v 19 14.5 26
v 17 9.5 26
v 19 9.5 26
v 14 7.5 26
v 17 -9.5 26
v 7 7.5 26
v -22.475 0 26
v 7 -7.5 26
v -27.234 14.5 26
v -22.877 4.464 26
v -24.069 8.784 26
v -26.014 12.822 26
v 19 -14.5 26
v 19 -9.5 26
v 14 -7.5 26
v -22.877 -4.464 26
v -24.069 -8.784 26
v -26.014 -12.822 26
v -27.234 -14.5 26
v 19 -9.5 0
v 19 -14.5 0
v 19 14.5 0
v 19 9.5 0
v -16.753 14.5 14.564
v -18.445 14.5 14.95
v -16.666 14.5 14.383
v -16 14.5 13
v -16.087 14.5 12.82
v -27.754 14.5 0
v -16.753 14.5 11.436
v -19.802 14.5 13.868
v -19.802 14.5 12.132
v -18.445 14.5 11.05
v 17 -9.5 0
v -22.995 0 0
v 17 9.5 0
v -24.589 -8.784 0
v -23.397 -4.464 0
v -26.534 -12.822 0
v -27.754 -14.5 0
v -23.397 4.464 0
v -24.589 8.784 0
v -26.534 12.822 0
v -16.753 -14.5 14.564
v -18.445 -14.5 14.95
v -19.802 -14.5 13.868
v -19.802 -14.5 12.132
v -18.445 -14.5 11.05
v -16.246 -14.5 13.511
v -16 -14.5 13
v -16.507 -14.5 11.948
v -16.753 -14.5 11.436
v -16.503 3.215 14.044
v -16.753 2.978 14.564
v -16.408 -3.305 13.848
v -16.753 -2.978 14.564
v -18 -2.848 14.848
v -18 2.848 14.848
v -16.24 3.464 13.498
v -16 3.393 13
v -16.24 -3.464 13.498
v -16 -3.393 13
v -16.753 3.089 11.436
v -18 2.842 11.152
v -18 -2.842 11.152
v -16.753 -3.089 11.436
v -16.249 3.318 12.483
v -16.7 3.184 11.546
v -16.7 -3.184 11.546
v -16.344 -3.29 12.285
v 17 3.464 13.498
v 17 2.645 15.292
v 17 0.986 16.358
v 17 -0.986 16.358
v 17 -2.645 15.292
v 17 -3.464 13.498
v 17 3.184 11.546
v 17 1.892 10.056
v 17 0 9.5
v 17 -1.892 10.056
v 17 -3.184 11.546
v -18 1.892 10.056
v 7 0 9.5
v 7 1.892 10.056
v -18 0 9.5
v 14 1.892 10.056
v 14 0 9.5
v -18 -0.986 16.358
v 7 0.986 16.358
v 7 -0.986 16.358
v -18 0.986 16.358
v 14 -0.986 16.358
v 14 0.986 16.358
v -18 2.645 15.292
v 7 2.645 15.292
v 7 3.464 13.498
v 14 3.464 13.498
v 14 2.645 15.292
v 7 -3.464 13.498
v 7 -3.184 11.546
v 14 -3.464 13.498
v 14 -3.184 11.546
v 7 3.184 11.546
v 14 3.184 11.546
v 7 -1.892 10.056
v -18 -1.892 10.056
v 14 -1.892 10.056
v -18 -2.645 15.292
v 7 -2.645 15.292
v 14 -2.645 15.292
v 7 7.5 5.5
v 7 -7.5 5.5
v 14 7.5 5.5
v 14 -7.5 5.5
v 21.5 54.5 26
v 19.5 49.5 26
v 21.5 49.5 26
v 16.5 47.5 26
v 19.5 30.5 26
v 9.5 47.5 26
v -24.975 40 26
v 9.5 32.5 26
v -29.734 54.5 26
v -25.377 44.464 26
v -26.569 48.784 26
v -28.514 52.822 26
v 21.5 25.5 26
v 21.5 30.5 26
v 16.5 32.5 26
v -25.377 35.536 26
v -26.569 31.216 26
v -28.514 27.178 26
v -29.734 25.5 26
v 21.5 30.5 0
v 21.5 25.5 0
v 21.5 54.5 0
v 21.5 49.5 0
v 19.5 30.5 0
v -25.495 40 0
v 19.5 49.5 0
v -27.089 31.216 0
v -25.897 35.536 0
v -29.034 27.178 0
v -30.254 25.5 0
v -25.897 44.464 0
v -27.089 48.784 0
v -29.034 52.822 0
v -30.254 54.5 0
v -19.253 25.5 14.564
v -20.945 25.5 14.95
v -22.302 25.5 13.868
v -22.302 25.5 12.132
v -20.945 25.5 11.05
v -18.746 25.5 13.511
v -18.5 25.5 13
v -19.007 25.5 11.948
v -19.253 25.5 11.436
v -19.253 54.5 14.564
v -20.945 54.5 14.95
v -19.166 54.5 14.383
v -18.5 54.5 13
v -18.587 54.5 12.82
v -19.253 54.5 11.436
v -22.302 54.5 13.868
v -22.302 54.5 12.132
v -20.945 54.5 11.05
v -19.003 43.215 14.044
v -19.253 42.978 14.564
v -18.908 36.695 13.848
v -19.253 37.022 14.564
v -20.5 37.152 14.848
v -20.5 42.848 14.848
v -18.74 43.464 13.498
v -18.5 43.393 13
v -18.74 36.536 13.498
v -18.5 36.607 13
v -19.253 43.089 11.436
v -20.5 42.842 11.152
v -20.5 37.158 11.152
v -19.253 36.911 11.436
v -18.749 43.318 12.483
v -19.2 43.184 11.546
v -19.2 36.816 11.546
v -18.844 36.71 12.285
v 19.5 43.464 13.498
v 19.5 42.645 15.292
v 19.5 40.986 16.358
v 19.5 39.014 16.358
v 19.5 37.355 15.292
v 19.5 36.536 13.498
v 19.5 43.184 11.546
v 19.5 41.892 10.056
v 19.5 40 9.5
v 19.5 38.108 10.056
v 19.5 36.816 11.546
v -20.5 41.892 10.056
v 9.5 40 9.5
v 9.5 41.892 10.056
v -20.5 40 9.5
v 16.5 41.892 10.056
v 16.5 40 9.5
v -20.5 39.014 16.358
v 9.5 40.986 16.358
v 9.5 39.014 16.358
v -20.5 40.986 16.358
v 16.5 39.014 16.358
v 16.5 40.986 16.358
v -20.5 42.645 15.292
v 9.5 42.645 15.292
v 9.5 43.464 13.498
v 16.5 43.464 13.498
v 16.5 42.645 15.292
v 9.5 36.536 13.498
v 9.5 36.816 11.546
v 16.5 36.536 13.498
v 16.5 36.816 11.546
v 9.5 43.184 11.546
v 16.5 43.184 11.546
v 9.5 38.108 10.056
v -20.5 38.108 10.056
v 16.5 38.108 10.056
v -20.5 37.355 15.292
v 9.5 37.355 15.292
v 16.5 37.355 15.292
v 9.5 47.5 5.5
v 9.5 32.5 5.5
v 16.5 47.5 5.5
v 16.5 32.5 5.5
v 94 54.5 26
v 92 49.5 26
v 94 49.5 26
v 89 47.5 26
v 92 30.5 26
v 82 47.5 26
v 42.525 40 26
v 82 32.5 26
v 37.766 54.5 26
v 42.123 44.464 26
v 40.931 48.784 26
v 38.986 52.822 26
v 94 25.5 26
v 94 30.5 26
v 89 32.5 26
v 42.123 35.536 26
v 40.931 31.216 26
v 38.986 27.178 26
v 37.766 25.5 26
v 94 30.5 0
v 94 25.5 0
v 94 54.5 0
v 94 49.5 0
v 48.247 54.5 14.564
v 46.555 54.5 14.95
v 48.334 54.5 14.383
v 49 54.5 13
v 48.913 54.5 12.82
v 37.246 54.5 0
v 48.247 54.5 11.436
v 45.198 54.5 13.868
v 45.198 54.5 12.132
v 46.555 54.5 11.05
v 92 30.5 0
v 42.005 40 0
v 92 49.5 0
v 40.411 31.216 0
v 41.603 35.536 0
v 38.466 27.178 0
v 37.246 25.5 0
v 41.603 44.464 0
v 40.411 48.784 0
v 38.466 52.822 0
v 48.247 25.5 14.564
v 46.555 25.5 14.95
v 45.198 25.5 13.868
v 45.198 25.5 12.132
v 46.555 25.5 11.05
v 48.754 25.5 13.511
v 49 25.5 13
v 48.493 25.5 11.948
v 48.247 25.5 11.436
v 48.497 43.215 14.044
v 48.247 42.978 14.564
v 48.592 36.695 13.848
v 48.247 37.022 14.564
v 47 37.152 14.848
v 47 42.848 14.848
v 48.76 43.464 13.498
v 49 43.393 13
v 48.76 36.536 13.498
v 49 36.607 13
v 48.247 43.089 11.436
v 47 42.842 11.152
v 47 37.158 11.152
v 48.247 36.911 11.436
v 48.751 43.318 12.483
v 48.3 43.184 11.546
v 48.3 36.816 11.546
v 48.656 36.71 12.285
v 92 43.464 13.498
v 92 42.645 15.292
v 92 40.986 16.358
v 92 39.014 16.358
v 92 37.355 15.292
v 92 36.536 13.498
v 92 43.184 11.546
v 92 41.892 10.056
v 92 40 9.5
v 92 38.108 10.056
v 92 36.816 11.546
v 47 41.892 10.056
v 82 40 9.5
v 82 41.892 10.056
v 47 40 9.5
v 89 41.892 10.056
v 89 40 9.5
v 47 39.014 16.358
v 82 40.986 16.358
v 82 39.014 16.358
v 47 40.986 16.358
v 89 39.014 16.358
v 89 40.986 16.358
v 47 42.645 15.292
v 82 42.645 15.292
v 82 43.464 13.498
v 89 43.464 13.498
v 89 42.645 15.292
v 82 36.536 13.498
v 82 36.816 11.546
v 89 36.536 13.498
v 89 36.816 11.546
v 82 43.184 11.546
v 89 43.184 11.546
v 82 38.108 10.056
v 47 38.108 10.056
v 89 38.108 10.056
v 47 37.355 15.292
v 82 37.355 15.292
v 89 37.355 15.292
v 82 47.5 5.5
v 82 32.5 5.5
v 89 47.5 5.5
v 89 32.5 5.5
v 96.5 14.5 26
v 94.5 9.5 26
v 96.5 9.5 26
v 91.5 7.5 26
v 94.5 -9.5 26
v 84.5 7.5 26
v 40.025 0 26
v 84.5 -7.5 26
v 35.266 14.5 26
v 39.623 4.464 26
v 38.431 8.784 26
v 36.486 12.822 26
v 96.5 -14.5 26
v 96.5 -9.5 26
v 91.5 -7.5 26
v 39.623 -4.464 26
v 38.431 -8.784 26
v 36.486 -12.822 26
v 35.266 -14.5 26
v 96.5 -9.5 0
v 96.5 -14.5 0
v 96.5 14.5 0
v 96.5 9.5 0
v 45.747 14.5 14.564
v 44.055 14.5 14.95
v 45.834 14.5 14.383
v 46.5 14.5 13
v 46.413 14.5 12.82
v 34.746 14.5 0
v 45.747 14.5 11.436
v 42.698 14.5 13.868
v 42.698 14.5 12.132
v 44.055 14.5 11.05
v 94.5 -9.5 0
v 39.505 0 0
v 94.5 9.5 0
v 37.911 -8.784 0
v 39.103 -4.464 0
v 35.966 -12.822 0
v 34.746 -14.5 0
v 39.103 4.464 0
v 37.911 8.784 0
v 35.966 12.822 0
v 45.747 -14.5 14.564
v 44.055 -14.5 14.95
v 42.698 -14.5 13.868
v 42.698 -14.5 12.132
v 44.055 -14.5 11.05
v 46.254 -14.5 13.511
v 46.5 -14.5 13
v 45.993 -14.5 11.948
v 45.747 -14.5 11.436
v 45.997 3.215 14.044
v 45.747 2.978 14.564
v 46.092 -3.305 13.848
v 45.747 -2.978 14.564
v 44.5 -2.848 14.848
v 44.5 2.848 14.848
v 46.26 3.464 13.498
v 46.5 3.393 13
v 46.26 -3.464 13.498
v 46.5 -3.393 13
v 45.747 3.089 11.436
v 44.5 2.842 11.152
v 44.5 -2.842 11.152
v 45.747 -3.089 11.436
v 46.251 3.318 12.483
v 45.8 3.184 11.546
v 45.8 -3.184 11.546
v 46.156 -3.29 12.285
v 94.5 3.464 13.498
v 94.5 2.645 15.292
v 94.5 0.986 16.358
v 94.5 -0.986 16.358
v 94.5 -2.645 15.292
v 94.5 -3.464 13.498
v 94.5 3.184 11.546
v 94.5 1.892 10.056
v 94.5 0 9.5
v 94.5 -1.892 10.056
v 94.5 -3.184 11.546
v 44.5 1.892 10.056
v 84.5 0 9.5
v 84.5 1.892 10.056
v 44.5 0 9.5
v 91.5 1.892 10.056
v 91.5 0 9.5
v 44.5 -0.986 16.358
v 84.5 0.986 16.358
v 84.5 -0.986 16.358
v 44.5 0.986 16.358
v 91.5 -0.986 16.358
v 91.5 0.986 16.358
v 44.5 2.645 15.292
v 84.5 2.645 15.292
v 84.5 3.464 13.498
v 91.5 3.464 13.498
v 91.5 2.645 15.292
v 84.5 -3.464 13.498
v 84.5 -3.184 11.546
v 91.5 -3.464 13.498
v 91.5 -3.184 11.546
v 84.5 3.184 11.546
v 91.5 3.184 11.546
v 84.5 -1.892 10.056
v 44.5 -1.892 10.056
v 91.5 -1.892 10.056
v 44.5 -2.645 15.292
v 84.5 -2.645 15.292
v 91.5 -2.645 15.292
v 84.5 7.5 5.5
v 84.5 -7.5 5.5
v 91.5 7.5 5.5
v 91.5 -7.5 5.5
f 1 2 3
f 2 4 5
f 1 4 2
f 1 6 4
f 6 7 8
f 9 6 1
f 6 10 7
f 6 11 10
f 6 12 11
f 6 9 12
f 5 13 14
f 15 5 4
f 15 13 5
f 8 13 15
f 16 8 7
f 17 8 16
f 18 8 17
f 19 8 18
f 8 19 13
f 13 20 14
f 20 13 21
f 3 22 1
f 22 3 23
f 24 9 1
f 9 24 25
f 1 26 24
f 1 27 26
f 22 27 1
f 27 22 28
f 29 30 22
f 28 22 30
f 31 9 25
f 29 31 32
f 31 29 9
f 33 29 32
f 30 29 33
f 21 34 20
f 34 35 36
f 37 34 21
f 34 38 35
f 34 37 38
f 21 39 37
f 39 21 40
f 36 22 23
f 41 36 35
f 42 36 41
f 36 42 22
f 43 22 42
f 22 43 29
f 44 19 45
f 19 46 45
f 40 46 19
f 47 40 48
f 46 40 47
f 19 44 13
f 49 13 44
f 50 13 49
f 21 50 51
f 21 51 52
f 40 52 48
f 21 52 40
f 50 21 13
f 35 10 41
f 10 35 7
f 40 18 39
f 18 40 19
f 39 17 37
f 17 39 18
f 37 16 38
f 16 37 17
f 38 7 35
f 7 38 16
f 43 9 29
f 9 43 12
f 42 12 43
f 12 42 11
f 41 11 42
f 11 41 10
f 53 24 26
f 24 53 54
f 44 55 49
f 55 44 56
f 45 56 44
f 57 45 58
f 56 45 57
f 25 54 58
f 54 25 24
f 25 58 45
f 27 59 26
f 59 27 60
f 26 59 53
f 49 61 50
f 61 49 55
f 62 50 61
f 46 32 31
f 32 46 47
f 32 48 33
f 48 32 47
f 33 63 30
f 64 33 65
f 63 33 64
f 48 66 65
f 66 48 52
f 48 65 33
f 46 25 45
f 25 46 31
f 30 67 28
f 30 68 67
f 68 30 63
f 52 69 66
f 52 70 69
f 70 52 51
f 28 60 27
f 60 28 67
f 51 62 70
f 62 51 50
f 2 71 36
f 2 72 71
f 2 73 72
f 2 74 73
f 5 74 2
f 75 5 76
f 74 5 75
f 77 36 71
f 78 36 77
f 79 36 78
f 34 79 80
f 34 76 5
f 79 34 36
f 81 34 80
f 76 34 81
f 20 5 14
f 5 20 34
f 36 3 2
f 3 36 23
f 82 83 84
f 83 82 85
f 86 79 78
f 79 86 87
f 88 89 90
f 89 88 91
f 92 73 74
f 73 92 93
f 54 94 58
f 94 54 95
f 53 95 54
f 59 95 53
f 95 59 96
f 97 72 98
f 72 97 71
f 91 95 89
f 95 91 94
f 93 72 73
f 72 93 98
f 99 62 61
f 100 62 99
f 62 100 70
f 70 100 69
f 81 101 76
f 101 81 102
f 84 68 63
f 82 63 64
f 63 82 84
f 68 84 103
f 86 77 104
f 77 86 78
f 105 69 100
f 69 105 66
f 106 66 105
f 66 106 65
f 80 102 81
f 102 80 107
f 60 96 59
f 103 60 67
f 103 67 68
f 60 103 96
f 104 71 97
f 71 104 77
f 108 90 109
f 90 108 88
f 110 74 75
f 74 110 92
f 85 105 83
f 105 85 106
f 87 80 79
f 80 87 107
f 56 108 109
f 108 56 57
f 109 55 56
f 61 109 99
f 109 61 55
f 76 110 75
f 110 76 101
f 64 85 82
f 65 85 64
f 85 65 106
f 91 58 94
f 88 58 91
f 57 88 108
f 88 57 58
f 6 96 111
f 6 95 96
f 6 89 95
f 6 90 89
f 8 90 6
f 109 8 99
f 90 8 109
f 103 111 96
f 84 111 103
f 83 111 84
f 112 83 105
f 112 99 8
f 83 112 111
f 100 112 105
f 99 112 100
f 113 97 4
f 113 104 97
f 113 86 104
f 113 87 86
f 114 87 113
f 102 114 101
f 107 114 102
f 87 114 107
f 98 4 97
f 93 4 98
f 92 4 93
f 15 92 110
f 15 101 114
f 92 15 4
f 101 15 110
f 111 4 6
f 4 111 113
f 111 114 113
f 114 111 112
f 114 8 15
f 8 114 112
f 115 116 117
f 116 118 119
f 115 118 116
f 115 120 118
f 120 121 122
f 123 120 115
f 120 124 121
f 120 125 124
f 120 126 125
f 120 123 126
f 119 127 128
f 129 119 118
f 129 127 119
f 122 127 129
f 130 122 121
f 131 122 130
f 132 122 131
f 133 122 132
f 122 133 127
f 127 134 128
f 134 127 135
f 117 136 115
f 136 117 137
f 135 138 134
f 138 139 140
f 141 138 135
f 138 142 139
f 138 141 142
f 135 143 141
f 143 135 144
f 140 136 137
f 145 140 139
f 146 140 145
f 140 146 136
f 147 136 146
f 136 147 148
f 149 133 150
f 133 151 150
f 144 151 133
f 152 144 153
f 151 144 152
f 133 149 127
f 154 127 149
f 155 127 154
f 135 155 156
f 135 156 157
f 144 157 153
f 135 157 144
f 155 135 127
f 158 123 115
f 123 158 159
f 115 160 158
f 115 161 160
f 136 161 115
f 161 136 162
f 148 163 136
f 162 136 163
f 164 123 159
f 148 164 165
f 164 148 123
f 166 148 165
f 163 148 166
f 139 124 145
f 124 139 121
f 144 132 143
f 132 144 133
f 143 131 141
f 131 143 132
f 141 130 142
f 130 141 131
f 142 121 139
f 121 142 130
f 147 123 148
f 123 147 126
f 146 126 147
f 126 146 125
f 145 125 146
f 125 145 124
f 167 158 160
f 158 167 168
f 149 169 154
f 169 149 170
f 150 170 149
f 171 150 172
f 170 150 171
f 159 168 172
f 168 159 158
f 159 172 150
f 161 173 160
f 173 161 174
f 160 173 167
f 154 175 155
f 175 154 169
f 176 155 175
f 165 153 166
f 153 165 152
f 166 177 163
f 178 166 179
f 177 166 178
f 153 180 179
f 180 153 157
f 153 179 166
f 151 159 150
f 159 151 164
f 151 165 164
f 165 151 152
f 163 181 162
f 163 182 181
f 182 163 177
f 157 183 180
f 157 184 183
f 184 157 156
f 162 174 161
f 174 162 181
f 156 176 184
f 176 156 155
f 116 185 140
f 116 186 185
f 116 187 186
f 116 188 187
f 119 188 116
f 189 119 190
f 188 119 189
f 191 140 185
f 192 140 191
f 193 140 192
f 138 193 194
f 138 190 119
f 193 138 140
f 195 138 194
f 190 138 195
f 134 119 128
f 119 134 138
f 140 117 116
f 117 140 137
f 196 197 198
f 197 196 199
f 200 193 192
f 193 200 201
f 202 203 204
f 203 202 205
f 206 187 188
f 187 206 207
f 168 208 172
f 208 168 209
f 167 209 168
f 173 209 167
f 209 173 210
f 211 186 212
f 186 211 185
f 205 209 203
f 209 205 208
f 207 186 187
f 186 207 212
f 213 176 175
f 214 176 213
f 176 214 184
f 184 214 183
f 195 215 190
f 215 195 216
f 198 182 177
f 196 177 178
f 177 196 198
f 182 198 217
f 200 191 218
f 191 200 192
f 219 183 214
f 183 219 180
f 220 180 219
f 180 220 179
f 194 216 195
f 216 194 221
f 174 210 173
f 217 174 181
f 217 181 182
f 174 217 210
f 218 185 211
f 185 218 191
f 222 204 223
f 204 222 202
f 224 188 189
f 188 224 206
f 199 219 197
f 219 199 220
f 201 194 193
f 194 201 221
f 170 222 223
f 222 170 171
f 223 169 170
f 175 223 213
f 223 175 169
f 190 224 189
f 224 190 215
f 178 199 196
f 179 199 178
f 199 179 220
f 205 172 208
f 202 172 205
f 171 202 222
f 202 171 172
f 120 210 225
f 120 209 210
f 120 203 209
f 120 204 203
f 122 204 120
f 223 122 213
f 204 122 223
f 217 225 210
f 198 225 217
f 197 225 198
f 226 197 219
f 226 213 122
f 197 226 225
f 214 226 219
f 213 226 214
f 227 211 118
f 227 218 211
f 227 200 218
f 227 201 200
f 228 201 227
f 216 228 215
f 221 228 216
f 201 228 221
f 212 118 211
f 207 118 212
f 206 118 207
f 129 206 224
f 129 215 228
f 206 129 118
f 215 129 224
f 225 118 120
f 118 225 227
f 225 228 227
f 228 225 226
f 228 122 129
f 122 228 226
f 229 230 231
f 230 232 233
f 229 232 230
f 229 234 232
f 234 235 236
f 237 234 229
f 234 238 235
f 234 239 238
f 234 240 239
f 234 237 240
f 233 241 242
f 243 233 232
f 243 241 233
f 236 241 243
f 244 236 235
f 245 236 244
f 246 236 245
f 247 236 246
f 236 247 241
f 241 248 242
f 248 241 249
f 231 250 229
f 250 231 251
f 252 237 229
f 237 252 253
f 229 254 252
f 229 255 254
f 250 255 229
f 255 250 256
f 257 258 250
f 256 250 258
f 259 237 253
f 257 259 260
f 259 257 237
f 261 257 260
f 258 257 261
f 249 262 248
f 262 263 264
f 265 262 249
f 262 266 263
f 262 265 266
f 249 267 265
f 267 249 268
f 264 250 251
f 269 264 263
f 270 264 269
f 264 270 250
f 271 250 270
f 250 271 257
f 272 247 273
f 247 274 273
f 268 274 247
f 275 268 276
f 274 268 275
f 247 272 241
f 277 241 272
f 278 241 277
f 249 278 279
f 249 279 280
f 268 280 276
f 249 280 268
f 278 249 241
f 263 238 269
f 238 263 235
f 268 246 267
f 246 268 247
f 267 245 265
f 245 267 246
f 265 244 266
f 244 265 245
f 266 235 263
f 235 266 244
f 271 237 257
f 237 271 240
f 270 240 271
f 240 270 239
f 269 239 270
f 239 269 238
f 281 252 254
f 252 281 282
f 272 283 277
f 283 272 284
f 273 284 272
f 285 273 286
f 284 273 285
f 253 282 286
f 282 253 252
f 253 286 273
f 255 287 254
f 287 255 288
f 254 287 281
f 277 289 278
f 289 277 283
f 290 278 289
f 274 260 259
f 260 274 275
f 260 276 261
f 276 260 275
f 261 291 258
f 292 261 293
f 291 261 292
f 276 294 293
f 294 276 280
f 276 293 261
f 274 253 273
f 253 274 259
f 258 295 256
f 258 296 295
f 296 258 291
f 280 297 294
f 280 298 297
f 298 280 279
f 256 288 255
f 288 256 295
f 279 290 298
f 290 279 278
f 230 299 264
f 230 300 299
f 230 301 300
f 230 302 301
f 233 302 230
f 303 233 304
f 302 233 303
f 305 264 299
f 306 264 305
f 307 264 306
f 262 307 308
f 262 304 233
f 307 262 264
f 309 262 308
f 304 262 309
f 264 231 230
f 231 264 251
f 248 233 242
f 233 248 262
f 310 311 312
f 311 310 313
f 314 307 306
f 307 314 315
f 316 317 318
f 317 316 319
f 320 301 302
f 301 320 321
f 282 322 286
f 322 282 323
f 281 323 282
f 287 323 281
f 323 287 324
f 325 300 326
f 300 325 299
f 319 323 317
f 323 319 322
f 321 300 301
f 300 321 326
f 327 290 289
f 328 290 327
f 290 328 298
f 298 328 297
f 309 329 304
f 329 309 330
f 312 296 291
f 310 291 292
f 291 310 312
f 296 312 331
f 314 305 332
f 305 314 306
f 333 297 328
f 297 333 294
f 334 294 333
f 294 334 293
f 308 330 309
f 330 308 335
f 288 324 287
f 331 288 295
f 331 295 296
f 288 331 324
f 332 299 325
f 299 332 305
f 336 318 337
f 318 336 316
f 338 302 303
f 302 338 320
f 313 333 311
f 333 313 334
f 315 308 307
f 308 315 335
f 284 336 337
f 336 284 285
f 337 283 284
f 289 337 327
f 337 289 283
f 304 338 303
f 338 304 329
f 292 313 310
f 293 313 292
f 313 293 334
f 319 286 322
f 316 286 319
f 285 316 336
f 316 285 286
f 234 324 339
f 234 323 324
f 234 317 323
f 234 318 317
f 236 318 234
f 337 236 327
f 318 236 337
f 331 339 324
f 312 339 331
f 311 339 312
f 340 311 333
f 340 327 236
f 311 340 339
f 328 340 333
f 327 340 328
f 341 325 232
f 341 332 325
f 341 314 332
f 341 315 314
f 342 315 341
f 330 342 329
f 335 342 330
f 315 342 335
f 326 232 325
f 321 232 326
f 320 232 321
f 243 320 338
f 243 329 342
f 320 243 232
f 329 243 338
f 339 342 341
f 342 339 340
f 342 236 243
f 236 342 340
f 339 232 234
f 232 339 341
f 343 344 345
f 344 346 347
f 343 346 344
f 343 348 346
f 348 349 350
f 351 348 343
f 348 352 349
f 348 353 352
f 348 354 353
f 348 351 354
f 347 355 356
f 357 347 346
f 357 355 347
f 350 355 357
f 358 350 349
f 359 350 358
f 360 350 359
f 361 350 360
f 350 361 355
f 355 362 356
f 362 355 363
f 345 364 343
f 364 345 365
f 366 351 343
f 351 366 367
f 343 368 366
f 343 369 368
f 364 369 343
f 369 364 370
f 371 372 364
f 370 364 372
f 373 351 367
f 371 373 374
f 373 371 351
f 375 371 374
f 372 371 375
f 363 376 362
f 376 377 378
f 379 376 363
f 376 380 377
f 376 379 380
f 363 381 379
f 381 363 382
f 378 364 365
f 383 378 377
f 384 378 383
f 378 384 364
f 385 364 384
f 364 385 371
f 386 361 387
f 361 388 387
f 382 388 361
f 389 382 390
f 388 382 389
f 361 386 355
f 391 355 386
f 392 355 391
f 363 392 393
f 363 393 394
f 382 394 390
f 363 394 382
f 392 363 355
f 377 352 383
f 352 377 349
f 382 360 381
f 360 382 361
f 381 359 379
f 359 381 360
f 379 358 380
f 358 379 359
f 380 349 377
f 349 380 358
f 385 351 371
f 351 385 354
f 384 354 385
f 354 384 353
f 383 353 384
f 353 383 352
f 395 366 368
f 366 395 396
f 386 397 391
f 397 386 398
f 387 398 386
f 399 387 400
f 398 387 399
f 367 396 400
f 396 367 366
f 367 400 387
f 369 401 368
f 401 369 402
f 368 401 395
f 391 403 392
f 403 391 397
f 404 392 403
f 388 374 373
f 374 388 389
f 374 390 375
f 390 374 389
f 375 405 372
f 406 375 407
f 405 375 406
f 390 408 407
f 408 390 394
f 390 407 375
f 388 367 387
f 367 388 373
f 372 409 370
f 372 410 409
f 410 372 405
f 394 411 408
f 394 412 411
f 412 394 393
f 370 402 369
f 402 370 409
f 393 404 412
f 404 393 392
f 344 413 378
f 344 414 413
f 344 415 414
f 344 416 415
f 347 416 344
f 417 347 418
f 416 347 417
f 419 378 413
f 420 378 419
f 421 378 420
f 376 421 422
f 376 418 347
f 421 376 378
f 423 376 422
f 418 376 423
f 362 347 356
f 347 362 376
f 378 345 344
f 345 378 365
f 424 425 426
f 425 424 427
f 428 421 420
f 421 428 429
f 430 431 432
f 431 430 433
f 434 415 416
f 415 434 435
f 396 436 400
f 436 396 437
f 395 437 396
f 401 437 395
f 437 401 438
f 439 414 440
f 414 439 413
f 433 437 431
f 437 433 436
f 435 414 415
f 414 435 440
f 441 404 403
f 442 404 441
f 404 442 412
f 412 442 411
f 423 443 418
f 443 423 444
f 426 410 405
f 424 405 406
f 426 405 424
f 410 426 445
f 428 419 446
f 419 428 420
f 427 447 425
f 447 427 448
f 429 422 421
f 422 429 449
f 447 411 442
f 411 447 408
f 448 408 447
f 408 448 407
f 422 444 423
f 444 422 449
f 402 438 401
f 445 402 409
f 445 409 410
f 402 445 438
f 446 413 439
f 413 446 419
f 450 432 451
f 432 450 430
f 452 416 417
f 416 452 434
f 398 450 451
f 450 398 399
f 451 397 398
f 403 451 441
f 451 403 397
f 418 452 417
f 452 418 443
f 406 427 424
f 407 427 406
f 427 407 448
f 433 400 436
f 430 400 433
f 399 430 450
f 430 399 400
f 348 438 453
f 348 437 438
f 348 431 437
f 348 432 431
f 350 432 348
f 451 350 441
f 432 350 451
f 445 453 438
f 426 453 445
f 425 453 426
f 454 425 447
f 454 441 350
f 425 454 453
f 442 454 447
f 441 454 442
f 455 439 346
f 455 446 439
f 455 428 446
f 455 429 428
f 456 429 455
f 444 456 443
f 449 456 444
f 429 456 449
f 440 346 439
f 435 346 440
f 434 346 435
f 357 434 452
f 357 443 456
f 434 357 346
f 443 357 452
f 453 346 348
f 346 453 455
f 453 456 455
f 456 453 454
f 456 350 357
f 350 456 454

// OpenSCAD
module uchytka(odstup) {

    sirka = 29;
    vyska = 26;

    polomer_trubky = 25;
    polomer_uchytky = 2;

    vykus_vzadu = 2;

    sklon_trubky = atan(2/100);
    
    prumer_matky = 15;
    vyska_matky = 7;
    podlozka_matky = 4;

    translate([-(polomer_trubky + 3 + odstup / 2), -sirka/2])
    difference() {
        cube([2 + odstup + polomer_trubky, sirka, vyska]);
        // tady bude trubka
        translate([0, sirka/2, 0]) 
            rotate([0, sklon_trubky, 0])
            cylinder(h=vyska *2 , r=polomer_trubky, $fn=35);
        // uchytka na pasku
        rotate([90, 0, 0]) 
            translate([polomer_trubky + 3 + polomer_uchytky, vyska / 2, -35]) 
            cylinder(h=vyska * 2, r=polomer_uchytky);
        // vykus u stojny
        translate([polomer_trubky + odstup + vykus_vzadu/2, sirka/2, vyska / 2])
            cube([vykus_vzadu, 19, vyska * 2], center=true);
        // sroub
        rotate([0, 90,0]) 
            translate([-vyska/2, sirka/2, 30]) 
            cylinder(h=100, r=3.5);
        // vykus pro matku
        translate([polomer_trubky + 3 + odstup - vykus_vzadu - vyska_matky - podlozka_matky, 
                  sirka/2 - prumer_matky/2, 
                  vyska/2 - prumer_matky/2])
            cube([vyska_matky, prumer_matky, prumer_matky + (vyska - prumer_matky) / 2 + 1]);
    }

}

uchytka(40);

translate([0, 40]) uchytka(45);
translate([70, 40]) uchytka(50);
translate([70, 0]) uchytka(55);
